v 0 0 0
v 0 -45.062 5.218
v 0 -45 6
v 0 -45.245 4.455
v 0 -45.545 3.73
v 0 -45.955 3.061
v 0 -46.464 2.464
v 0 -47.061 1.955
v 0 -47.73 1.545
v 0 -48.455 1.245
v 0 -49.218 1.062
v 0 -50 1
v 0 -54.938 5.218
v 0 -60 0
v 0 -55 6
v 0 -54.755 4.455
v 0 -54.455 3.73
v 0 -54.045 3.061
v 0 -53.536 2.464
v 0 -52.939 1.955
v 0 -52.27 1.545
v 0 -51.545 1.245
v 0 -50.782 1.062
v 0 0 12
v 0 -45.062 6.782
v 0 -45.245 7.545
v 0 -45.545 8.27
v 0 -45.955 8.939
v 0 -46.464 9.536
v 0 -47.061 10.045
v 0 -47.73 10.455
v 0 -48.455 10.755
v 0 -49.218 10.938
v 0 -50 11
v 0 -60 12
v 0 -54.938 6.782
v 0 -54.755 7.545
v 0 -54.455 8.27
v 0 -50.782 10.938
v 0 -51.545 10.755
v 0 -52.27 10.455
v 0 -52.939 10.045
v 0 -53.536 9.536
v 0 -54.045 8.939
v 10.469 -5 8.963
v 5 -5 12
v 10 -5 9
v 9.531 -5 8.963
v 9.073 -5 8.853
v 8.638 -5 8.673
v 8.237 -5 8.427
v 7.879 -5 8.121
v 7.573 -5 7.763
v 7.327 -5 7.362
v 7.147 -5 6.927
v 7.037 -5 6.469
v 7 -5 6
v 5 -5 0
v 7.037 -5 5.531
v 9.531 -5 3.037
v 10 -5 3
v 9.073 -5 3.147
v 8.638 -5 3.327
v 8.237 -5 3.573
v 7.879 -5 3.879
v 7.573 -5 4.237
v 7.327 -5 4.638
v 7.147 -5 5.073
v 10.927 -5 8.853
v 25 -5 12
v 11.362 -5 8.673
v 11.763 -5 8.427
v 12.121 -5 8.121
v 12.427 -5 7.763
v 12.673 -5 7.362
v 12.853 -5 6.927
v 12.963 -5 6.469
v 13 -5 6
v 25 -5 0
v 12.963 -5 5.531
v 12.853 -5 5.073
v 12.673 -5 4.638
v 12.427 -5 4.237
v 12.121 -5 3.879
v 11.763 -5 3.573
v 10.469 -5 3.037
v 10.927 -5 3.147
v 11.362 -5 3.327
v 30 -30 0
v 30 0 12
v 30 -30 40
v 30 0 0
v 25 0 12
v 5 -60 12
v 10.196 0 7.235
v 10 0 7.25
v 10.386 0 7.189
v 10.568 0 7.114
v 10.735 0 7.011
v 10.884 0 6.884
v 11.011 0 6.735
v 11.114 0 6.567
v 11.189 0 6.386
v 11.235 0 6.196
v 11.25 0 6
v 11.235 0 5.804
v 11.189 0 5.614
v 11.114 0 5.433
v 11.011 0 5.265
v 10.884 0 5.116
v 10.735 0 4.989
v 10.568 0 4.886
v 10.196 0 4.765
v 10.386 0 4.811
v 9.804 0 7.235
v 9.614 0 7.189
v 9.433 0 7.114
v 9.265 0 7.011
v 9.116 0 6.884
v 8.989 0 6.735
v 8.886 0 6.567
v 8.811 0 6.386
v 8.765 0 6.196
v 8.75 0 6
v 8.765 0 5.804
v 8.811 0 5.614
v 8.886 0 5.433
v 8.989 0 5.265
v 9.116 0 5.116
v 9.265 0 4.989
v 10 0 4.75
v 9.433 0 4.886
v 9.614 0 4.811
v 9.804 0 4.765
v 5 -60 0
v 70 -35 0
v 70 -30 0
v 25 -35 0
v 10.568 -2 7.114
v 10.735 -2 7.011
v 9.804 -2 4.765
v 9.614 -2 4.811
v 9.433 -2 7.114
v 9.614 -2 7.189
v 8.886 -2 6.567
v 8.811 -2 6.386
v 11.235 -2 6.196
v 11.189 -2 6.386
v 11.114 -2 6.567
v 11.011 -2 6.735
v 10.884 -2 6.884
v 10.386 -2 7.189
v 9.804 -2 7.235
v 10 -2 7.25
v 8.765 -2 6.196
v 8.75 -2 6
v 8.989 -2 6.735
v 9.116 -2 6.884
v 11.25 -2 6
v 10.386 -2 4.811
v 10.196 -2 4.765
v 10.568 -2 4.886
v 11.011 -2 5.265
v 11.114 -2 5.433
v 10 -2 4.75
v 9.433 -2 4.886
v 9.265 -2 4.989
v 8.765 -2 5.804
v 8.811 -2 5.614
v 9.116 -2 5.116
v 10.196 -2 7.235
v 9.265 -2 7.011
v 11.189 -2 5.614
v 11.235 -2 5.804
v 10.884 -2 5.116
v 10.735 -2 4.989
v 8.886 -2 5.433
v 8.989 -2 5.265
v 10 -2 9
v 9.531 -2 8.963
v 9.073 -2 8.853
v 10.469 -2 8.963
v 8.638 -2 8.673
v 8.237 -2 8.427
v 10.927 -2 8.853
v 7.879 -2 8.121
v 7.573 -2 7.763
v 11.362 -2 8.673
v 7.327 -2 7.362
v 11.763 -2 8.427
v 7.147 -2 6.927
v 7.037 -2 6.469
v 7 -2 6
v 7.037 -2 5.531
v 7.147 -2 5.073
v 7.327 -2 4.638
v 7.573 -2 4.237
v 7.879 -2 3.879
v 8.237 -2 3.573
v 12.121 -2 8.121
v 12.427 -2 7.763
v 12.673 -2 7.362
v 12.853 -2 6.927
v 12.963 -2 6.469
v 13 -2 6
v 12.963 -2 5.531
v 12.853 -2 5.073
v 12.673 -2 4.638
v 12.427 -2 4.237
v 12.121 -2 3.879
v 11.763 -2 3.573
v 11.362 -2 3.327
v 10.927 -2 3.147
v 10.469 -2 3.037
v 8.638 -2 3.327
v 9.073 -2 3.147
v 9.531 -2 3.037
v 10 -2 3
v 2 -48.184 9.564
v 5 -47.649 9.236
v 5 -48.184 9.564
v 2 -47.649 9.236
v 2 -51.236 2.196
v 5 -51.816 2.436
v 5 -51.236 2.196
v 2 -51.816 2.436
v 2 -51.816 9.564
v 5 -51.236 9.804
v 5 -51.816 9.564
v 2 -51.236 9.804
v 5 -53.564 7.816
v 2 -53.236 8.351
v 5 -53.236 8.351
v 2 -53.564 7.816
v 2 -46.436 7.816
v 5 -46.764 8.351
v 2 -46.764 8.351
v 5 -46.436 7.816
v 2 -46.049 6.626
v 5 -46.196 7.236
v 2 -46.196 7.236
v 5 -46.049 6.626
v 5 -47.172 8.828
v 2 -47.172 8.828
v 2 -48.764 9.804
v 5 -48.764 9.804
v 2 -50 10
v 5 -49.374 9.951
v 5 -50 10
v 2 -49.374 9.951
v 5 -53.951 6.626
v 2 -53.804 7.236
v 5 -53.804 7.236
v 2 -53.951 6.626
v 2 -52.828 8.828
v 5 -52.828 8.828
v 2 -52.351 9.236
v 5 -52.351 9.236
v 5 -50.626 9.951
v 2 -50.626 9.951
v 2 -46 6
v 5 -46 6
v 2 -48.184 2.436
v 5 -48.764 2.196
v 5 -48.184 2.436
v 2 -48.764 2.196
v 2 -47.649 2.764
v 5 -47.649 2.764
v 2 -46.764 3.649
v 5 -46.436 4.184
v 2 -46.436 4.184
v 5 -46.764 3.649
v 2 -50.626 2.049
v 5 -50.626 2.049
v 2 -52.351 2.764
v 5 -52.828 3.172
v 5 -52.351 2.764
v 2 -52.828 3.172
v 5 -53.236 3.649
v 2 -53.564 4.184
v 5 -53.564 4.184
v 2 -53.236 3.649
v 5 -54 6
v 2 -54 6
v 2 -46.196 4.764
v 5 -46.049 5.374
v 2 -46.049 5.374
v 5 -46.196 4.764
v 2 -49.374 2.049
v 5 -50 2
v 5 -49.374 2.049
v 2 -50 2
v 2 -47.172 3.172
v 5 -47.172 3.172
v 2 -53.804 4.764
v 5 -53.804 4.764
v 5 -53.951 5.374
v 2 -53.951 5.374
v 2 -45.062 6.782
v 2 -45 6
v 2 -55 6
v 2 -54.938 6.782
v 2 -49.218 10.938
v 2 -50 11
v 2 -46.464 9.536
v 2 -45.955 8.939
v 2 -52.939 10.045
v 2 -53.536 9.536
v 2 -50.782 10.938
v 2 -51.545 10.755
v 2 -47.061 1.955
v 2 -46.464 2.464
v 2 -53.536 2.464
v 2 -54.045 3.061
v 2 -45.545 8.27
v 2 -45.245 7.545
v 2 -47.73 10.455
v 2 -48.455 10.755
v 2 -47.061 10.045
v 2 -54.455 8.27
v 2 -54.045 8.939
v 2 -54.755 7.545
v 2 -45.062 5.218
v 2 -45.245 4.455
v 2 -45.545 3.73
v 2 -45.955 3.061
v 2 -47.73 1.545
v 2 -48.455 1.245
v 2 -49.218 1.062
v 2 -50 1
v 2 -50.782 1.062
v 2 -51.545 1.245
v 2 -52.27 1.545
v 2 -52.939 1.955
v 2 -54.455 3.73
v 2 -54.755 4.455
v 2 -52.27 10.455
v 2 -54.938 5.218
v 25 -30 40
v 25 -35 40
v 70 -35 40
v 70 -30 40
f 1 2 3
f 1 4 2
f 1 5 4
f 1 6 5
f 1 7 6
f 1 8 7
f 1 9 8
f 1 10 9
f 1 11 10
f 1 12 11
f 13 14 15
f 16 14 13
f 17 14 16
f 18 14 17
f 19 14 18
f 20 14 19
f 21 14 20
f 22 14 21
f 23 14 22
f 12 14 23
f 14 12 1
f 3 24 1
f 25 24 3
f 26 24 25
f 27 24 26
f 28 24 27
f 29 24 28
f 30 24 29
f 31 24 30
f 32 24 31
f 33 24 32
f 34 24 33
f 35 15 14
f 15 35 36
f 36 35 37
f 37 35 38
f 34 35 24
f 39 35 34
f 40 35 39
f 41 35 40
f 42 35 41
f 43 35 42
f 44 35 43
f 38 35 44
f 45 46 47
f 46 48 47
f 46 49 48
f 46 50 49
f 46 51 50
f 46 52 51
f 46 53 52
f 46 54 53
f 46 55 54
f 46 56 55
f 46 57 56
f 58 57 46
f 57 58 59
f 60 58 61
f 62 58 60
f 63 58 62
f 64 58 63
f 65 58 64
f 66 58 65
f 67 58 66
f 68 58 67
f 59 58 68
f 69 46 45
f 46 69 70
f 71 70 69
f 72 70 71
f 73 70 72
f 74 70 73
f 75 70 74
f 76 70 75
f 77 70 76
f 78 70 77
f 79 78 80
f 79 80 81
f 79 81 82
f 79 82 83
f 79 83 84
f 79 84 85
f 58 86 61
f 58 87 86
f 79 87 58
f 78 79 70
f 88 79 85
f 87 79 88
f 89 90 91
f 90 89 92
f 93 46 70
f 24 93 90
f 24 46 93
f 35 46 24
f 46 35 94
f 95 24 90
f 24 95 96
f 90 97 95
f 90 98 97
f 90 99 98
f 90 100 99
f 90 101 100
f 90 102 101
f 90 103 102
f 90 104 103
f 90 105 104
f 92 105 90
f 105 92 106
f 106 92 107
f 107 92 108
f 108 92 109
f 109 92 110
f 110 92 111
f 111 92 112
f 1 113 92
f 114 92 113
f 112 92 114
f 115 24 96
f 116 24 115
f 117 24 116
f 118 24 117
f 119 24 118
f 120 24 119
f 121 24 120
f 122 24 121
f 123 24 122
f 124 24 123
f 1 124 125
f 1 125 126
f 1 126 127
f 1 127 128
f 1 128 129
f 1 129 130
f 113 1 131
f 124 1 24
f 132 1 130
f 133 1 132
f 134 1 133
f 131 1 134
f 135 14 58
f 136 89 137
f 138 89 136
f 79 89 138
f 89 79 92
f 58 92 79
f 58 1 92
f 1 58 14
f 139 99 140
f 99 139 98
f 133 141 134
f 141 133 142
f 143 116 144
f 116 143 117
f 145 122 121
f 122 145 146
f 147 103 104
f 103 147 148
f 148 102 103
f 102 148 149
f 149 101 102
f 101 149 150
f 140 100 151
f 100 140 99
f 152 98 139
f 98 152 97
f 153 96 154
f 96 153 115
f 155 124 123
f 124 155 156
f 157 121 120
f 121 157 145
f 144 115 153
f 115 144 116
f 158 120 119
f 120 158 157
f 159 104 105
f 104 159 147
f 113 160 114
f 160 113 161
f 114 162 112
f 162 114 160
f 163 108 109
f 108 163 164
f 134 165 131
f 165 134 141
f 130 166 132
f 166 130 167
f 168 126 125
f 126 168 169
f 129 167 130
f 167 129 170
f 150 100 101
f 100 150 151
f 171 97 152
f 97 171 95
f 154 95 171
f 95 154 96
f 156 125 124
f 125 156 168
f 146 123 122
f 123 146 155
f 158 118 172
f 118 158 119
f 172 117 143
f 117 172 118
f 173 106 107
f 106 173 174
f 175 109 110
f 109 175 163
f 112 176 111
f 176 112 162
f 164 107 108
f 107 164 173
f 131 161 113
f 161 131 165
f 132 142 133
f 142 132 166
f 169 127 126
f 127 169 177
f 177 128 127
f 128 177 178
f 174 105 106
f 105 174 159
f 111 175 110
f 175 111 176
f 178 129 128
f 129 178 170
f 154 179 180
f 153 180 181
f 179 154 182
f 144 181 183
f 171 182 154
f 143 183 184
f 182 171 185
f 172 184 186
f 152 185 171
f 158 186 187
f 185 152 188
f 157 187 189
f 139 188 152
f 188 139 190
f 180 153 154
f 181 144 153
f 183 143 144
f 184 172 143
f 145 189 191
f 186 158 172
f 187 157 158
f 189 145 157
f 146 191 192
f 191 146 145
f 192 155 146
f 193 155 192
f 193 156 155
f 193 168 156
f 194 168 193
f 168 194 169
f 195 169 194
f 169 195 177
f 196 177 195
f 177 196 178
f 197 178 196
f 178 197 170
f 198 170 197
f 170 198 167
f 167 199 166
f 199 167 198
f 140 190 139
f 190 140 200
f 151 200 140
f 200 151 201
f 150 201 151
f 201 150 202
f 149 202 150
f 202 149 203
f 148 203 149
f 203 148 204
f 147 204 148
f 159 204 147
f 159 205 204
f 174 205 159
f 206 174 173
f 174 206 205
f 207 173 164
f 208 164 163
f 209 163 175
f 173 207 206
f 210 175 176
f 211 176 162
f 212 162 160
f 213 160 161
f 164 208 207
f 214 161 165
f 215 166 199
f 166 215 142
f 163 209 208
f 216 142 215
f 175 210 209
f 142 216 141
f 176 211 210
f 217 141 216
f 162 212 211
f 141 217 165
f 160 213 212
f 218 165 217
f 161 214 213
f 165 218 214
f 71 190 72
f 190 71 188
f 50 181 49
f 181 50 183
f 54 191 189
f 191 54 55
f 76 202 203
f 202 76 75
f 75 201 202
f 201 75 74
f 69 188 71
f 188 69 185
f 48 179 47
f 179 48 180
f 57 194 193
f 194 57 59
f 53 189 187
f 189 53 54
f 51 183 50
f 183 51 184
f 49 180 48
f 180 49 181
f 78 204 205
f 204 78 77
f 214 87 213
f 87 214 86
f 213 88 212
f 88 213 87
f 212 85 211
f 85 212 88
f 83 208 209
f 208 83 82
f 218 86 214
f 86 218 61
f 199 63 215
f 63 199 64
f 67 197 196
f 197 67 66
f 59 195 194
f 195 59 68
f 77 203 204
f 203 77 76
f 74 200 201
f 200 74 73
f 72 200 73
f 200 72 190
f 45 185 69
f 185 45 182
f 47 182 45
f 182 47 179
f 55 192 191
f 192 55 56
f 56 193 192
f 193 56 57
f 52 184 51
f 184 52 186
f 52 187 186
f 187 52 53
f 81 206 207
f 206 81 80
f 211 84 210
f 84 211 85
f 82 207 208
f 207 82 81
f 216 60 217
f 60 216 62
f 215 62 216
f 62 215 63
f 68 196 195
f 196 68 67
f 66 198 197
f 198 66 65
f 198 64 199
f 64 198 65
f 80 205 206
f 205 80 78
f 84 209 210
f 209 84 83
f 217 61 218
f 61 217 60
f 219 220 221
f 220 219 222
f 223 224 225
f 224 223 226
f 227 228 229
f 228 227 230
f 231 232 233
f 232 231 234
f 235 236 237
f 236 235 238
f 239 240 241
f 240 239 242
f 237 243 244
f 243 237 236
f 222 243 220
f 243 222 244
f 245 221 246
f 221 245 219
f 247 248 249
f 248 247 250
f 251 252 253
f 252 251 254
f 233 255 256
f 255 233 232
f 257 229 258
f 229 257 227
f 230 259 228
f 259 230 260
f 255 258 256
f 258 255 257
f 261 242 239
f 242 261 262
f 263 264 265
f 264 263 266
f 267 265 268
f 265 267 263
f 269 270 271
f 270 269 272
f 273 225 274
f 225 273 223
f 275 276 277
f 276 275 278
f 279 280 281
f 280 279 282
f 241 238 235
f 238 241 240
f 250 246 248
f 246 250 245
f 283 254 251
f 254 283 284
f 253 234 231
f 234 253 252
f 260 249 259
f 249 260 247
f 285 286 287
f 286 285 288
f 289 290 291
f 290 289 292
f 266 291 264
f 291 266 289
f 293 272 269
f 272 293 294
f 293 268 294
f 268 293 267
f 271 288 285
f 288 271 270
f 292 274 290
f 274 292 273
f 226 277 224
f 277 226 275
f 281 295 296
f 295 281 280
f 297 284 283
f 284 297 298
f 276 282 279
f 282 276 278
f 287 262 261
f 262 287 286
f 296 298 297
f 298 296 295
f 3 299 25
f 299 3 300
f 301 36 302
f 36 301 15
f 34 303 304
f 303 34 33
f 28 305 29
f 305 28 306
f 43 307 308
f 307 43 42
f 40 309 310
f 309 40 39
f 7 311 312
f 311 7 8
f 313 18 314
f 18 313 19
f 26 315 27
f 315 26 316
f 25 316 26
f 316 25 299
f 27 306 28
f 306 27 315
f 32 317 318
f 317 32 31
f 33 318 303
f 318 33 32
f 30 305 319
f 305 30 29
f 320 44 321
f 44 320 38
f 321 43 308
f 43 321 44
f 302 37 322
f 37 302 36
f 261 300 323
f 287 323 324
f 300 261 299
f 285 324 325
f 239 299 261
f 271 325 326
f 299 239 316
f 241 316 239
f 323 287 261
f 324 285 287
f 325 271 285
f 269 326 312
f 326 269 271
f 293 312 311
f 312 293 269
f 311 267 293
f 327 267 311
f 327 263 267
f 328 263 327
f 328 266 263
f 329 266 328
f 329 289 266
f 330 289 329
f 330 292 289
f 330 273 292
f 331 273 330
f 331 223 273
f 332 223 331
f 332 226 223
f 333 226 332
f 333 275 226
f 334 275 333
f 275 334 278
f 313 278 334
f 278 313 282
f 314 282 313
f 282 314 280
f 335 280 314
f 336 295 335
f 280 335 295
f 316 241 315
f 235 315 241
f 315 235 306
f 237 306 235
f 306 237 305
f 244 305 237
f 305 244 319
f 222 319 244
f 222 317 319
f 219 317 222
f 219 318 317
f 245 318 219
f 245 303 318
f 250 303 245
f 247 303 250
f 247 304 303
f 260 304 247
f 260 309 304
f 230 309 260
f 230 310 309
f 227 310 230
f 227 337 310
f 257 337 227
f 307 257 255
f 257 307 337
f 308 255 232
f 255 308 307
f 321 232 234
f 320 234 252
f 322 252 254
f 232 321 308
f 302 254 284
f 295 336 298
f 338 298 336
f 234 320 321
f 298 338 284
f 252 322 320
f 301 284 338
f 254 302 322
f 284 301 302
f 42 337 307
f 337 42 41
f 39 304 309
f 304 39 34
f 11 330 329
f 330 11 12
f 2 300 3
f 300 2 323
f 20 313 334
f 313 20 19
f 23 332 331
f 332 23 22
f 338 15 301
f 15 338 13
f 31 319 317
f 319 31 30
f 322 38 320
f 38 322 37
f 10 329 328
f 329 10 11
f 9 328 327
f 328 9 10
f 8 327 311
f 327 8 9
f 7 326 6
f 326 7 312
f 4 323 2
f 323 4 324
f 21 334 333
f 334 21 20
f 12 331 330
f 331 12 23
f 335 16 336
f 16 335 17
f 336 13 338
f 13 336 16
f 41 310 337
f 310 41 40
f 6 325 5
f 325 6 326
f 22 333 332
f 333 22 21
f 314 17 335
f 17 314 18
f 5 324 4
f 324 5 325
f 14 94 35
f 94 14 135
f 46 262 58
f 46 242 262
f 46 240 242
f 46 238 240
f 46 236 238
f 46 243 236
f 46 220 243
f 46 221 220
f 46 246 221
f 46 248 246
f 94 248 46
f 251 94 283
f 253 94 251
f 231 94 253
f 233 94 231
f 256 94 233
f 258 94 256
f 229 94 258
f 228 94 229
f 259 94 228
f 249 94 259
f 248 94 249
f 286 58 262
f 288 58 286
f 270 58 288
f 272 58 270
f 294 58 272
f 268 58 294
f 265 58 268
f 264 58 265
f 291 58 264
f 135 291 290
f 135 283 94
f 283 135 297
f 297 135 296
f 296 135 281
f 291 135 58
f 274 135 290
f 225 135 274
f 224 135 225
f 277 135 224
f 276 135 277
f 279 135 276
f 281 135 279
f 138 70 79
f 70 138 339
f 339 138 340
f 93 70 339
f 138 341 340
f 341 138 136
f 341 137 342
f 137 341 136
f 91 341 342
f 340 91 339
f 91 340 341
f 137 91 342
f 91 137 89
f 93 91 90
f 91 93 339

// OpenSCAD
//Antennas mount

ex=0.1;         //utility

mount_thickness=5;
mount_width=12;
mount_length=30;
mount_hole_x=10;
mount_hole_dia=2.5;
mount_hole_head_dia=6;
mount_hole_head_height=3;
GSM_mount_height=60;
GSM_mount_length=20;
GSM_mount_hole_dia=8;
GSM_mount_hole_height=50;
GPS_mount_height=35;
GPS_mount_width=40;
GPS_mount_length=45;
$fn=40;

//start
rotate([90, 0, 0]) antennas_mount();

module antennas_mount(){
    mount_base();
    GSM_mount();
    GPS_mount();
}

module mount_base(){
    difference(){
        cube([mount_length, mount_width, mount_thickness]);
        translate([mount_hole_x, mount_width/2, -ex]) 
            cylinder(h=mount_thickness-mount_hole_head_height+2*ex, d=mount_hole_dia);
        translate([mount_hole_x, mount_width/2, mount_thickness-mount_hole_head_height]) 
            cylinder(h=mount_hole_head_height+ex, d=mount_hole_head_dia);
    }
}

module GSM_mount(){
    difference(){
        cube([mount_thickness, mount_width, GSM_mount_height]);
        translate([-ex, mount_width/2, GSM_mount_hole_height]) 
            rotate([0, 90, 0]) union(){
                cylinder(h=mount_thickness+2*ex, d=GSM_mount_hole_dia);
                cylinder(h=mount_thickness-3+ex, d=GSM_mount_hole_dia+2);
            }
    }
}

module GPS_mount(){
    translate([mount_length-mount_thickness, 0, 0]) 
        cube([mount_thickness, mount_width, GPS_mount_height]);
    translate([mount_length-mount_thickness, 0, GPS_mount_height-mount_thickness]) 
        cube([GPS_mount_length, GPS_mount_width, mount_thickness]);
    translate([mount_length-mount_thickness,GPS_mount_width, GPS_mount_height-mount_thickness])     rotate([180, 0, 0]) 
            prism(mount_thickness, GPS_mount_width-mount_width, GPS_mount_height-mount_thickness);
}

 module prism(l, w, h){
       polyhedron(
               points=[[0,0,0], [l,0,0], [l,w,0], [0,w,0], [0,w,h], [l,w,h]],
               faces=[[0,1,2,3],[5,4,3,2],[0,4,5,1],[0,3,4],[5,2,1]]
               );
 }
